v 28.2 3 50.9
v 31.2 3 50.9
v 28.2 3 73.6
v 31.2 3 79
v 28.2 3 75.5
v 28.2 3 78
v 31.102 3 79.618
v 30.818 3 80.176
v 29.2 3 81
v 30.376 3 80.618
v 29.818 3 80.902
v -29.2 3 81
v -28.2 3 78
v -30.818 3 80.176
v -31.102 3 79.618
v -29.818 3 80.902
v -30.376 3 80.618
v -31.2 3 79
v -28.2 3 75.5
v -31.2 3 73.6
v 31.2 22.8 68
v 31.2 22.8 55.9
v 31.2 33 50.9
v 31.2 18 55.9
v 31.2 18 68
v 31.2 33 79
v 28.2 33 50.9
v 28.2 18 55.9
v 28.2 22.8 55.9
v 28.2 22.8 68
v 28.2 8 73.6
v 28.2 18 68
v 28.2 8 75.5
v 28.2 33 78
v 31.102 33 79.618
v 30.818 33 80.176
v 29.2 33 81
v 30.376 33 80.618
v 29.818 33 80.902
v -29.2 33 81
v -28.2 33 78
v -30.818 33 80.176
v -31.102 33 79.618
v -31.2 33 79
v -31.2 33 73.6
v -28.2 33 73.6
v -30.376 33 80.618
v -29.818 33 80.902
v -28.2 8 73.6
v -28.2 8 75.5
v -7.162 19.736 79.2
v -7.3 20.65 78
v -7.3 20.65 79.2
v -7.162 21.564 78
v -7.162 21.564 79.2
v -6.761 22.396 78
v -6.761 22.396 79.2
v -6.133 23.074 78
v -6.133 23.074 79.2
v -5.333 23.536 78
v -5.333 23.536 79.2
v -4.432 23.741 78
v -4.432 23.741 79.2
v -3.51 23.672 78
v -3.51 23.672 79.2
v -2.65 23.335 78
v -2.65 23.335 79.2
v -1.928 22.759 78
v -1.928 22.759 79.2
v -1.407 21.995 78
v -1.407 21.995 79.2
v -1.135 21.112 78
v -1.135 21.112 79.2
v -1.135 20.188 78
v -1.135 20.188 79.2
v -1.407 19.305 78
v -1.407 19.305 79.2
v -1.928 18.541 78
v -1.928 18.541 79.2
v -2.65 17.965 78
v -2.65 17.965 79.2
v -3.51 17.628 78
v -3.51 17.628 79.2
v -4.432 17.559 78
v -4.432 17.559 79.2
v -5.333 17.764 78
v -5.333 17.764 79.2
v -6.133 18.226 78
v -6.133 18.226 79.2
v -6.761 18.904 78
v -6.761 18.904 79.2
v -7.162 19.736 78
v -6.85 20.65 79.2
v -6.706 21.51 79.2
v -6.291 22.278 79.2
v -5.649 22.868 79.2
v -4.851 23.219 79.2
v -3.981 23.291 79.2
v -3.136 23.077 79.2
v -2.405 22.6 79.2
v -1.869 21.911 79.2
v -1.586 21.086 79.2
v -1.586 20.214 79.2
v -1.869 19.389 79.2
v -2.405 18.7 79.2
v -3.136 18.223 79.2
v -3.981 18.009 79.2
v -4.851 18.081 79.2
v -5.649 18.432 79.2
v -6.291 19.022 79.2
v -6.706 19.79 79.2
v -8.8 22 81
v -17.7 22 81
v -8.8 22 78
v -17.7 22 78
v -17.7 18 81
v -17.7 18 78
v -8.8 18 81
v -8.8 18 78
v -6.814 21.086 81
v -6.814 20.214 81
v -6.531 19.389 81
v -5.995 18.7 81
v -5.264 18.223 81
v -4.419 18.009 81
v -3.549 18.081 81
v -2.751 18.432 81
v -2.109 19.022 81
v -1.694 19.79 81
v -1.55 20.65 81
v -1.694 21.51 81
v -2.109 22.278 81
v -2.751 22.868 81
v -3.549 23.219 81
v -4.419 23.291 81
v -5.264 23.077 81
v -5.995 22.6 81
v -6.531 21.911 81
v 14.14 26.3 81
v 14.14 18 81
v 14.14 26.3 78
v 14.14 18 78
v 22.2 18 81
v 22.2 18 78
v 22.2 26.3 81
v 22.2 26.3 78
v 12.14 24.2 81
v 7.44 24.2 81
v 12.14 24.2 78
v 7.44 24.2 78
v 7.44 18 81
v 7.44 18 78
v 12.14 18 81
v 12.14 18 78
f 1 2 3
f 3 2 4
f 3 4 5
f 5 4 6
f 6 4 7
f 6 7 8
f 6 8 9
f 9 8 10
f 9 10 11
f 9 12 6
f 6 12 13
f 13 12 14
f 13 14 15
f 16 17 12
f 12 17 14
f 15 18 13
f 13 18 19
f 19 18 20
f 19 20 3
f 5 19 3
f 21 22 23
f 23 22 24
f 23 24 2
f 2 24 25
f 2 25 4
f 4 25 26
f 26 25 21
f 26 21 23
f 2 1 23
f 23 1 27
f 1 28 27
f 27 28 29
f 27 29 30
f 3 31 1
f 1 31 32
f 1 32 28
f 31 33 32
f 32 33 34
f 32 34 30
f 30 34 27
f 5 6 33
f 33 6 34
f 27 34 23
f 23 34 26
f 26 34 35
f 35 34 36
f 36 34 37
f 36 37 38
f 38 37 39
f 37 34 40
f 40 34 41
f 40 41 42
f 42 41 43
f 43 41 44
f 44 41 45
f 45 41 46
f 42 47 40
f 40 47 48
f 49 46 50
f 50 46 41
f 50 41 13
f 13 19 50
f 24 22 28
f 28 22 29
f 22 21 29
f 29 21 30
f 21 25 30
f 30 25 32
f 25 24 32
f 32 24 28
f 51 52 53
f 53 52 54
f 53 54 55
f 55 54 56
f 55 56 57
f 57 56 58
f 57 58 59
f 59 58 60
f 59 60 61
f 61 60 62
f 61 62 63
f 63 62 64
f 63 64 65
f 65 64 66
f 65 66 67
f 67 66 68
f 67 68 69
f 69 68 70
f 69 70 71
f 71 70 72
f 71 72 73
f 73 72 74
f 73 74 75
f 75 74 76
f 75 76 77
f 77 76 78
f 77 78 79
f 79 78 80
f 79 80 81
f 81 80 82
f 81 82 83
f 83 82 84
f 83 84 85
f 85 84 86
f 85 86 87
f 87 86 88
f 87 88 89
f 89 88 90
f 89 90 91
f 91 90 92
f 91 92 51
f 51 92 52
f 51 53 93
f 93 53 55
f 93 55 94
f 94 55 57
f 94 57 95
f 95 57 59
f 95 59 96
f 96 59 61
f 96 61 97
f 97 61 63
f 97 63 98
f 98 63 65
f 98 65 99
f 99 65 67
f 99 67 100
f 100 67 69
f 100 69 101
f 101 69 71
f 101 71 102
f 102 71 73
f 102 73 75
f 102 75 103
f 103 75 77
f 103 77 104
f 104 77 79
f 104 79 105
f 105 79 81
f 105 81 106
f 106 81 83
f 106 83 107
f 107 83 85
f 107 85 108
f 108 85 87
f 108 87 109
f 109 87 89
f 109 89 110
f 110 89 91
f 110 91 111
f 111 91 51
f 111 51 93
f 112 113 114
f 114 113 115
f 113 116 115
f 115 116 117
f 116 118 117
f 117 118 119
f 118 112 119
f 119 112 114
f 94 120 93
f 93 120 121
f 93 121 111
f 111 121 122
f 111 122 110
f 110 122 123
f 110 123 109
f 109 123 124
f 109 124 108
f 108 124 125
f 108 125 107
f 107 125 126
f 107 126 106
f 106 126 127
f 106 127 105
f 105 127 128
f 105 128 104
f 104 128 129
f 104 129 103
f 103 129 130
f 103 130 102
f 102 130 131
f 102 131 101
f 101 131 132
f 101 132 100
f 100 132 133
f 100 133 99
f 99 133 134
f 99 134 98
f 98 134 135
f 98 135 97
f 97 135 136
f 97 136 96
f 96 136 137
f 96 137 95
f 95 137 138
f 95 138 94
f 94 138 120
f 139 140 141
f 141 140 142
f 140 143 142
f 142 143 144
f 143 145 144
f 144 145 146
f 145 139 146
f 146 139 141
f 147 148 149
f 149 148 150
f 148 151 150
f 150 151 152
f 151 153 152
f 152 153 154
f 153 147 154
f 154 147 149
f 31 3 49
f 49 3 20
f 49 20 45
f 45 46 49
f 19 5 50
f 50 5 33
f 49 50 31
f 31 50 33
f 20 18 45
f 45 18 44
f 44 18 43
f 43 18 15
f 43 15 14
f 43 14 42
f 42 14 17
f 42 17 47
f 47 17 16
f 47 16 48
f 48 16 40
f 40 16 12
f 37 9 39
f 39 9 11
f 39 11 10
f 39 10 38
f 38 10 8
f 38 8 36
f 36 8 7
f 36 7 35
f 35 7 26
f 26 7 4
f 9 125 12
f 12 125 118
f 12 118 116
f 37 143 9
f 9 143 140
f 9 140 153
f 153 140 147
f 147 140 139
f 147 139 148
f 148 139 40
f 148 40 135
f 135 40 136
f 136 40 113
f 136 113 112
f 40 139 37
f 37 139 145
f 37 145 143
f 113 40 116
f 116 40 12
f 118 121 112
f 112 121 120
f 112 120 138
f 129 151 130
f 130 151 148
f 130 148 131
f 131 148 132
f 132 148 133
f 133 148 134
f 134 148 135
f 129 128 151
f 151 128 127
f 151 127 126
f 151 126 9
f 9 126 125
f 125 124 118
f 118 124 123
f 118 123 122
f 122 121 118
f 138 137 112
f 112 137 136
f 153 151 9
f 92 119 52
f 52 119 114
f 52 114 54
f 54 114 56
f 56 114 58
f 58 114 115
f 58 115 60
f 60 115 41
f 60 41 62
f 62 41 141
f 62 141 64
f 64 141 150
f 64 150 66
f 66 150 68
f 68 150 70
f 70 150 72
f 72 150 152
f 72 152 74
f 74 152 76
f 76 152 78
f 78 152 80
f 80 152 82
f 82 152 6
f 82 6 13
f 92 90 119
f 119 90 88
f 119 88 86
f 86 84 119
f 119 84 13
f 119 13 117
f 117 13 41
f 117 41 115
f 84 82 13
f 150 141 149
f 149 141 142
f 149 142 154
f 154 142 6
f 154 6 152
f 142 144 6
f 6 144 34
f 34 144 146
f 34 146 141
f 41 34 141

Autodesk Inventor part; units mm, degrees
ref_plane "YZ Plane" through (0, 0, 0) normal (1, 0, 0) x (0, 1, 0)
ref_plane "XZ Plane" through (0, 0, 0) normal (0, 1, 0) x (-1, 0, 0)
ref_plane "XY Plane" through (0, 0, 0) normal (0, 0, 1) x (1, 0, 0)
sketch "Sketch1" plane through (0, 0, 0) normal (0, 1, 0) x (-1, 0, 0)
  line L0 (-31.2, -81) -> (31.2, -81)
  line L1 (31.2, -81) -> (31.2, 81)
  line L2 (31.2, 81) -> (-31.2, 81)
  line L3 (-31.2, 81) -> (-31.2, -81)
  line L4 (-31.2, -81) -> (31.2, 81) construction
  line L5 (31.2, -81) -> (-31.2, 81) construction
  point P0 (0, 0)
  dimension "d0" = 62.4
  dimension "d1" = 162
extrude "Extrusion1" add sketch "Sketch1" along normal blind 3
sketch "Sketch2" plane through (0, 3, 0) normal (0, 1, 0) x (1, 0, 0)
  line L0 (-31.2, 81) -> (-31.2, -81) projected
  line L1 (-31.2, -81) -> (31.2, -81) projected
  line L2 (31.2, -81) -> (31.2, 81) projected
  line L3 (31.2, 81) -> (-31.2, 81) projected
  line L4 (31.2, 81) -> (-31.2, 81)
  line L5 (-31.2, 81) -> (-31.2, -81)
  line L6 (-31.2, -81) -> (31.2, -81)
  line L7 (31.2, -81) -> (31.2, 81)
  line L8 (31.2, 81) -> (-31.2, -81) construction
  line L9 (-31.2, 81) -> (31.2, -81) construction
  line L10 (28.2, 78) -> (-28.2, 78)
  line L11 (-28.2, 78) -> (-28.2, -78)
  line L12 (-28.2, -78) -> (28.2, -78)
  line L13 (28.2, -78) -> (28.2, 78)
  line L14 (28.2, 78) -> (-28.2, -78) construction
  line L15 (-28.2, 78) -> (28.2, -78) construction
  point P0 (0, 0)
  dimension "d4" = 0
  dimension "d5" = 0
  dimension "d6" = 3
  dimension "d7" = 3
extrude "Extrusion2" add sketch "Sketch2" along normal blind 30
fillet "Fillet1" radius 2 4 edges at (31.2, 16.5, 81) (31.2, 16.5, -81) (-31.2, 16.5, 81) (-31.2, 16.5, -81)
sketch "Sketch9" plane through (0, 3, 0) normal (0, 1, 0) x (1, 0, 0)
  line L0 (28.2, 78) -> (-28.2, 78) projected
  line L1 (-28.2, 78) -> (-28.2, -78) projected
  line L2 (-28.2, -78) -> (28.2, -78) projected
  line L3 (28.2, -78) -> (28.2, 78) projected
  line L4 (-28.2, -75.5) -> (28.2, -75.5)
  line L5 (28.2, -75.5) -> (28.2, -73.6)
  line L6 (28.2, -73.6) -> (-28.2, -73.6)
  line L7 (-28.2, -73.6) -> (-28.2, -75.5)
  line L8 (-28.2, 78) -> (-28.2, -78) projected
  line L9 (-28.2, 32.8) -> (28.2, 32.8)
  line L10 (28.2, 32.8) -> (28.2, 34.7)
  line L11 (28.2, 34.7) -> (-28.2, 34.7)
  line L12 (-28.2, 34.7) -> (-28.2, 32.8)
  line L13 (-28.2, 34.7) -> (-11, 34.7)
  line L14 (-11, 34.7) -> (-11, 32.8)
  line L15 (-11, 32.8) -> (-28.2, 32.8)
  line L16 (-28.2, 32.8) -> (-28.2, 34.7)
  line L17 (28.2, 39.1) -> (-11, 39.1)
  line L18 (-11, 39.1) -> (-11, 37.2)
  line L19 (-11, 37.2) -> (28.2, 37.2)
  line L20 (28.2, 37.2) -> (28.2, 39.1)
  line L21 (-11, 37.2) -> (-9, 37.2)
  line L22 (-9, 37.2) -> (-9, 34.7)
  line L23 (-9, 34.7) -> (-11, 34.7)
  line L24 (-11, 34.7) -> (-11, 37.2)
  point P0 (0, 0)
  point P1 (28.2, 14.2)
  point P2 (-28.2, 34.7)
  point P3 (28.2, 32.8)
  point P4 (-28.2, -73.6)
  point P5 (-11, 34.7)
  point P6 (28.2, 37.2)
  dimension "d79" = 1.9
  dimension "d80" = 2.5
  dimension "d81" = 1.9
  dimension "d82" = 106.4
  dimension "d87" = 17.2
  dimension "d163" = 1.9
  dimension "d164" = 2.5
  dimension "d165" = 17.2
  dimension "d166" = 2
extrude "Extrusion9" add sketch "Sketch9" along normal blind 5 contours L3 L19 L18 L17 | L24 L19 L22 L11 | L11 L3 L9 L14 | L6 L3 L4 L1
sketch "Sketch10" plane through (0, 3, 0) normal (0, 1, 0) x (1, 0, 0)
  line L0 (-28.2, -73.6) -> (28.2, -73.6) projected
  line L1 (28.2, -73.6) -> (28.2, 32.8) projected
  line L2 (28.2, 32.8) -> (-11, 32.8) projected
  line L3 (-9, 34.7) -> (28.2, 34.7) projected
  line L4 (28.2, 34.7) -> (28.2, 37.2) projected
  line L5 (28.2, 78) -> (-28.2, 78) projected
  line L6 (-28.2, 78) -> (-28.2, -73.6) projected
  line L7 (-28.2, 37.1) -> (28.2, 37.1)
  line L8 (-28.2, 70.3) -> (-28.2, 37.1)
  line L9 (-28.2, 37.1) -> (28.2, 37.1)
  line L10 (28.2, 37.1) -> (28.2, 39.1)
  line L11 (28.2, 39.1) -> (-28.2, 39.1)
  line L12 (-28.2, 39.1) -> (-28.2, 37.1)
  line L13 (28.2, 34.7) -> (28.2, 78) projected
  line L14 (-28.2, 39.1) -> (28.2, 39.1)
  line L15 (28.2, 39.1) -> (28.2, 75.6)
  line L16 (28.2, 75.6) -> (-23, 75.6)
  line L17 (-23, 75.6) -> (28.2, 75.6)
  line L18 (28.2, 75.6) -> (28.2, 68)
  line L19 (-23, 73.5) -> (-23, 75.6)
  line L20 (28.2, 39.1) -> (26.2, 39.1)
  line L21 (26.2, 39.1) -> (26.2, 75.6)
  line L22 (26.2, 75.6) -> (28.2, 75.6)
  line L23 (28.2, 75.6) -> (28.2, 39.1)
  line L24 (26.2, 39.1) -> (9.6, 39.1)
  line L25 (9.6, 39.1) -> (9.6, 75.6)
  line L26 (9.6, 75.6) -> (26.2, 75.6)
  line L27 (26.2, 75.6) -> (26.2, 39.1)
  line L28 (9.6, 39.1) -> (7.6, 39.1)
  line L29 (7.6, 39.1) -> (7.6, 75.6)
  line L30 (7.6, 75.6) -> (9.6, 75.6)
  line L31 (9.6, 75.6) -> (9.6, 39.1)
  line L32 (7.6, 39.1) -> (-9, 39.1)
  line L33 (-9, 39.1) -> (-9, 75.6)
  line L34 (-9, 75.6) -> (7.6, 75.6)
  line L35 (7.6, 75.6) -> (7.6, 39.1)
  line L36 (-9, 39.1) -> (-11, 39.1)
  line L37 (-11, 39.1) -> (-11, 75.6)
  line L38 (-11, 75.6) -> (-9, 75.6)
  line L39 (-9, 75.6) -> (-9, 39.1)
  line L40 (-23, 75.6) -> (-21.5, 75.6)
  line L41 (-21.5, 75.6) -> (-21.5, 39.1)
  line L42 (-21.5, 39.1) -> (-23, 39.1)
  line L43 (-23, 39.1) -> (-23, 75.6)
  line L44 (-11, 39.2) -> (-11, 57)
  line L45 (-11, 57) -> (-21.5, 57)
  line L46 (-21.5, 57) -> (-21.5, 39.1)
  line L47 (-11, 39.1) -> (28.2, 39.1) projected
  line L48 (28.2, 39.1) -> (28.2, 78) projected
  line L49 (-11, 32.8) -> (-11, 39.1) projected
  line L50 (28.2, 37.2) -> (-9, 37.2) projected
  line L51 (-9, 37.2) -> (-9, 34.7) projected
  line L52 (28.2, -75.5) -> (-28.2, -75.5) projected
  line L53 (-28.2, -75.5) -> (-28.2, -78) projected
  line L54 (-28.2, -78) -> (28.2, -78) projected
  line L55 (28.2, -78) -> (28.2, -75.5) projected
  line L56 (-11, 39.2) -> (-11, 37.1)
  line L57 (-11, 55) -> (-23, 55)
  line L58 (-11, 39.2) -> (-11, 32.8)
  line L59 (-11, 32.8) -> (-11, 32.8)
  line L60 (-11, 32.8) -> (-11, 39.2)
  line L61 (-23, 55) -> (-28.2, 55)
  point P0 (0, 0)
  point P1 (28.2, 37.1)
  point P2 (-9, 39.1)
  point P3 (-11, 39.1)
  point P4 (-21.5, 39.1)
  point P5 (-21.5, 57)
  point P6 (28.2, 37.2)
  point P7 (-11, 37.1)
  point P8 (28.2, 39.1)
  point P9 (-25.2, 72.6)
  point P10 (-11, 39.2)
  point P11 (-11, 39.1)
  point P12 (-11, 55)
  point P13 (-21.5, 75.6)
  point P14 (-25.2, 52)
  point P15 (-11, 37.1)
  point P16 (28.2, 39.1)
  point P17 (-11, 37.1)
  point P18 (-21.5, 55)
  point P19 (-11, 39.1)
  point P20 (-10.1, 32.8)
  point P21 (28.2, 39.1)
  point P22 (-11, 39.1)
  point P23 (-9, 39.1)
  point P24 (-11, 32.8)
  dimension "d90" = 2
  dimension "d91" = 36.5
  dimension "d93" = 2
  dimension "d94" = 16.6
  dimension "d95" = 2
  dimension "d96" = 16.6
  dimension "d97" = 2
  dimension "d98" = 1.5
  dimension "d167" = 2.4
  dimension "d172" = 18.6
  dimension "d173" = 2
  dimension "d174" = 10.5
extrude "Extrusion10" add sketch "Sketch10" along normal blind 1 contours L6 L5 L13 L16 L19 L43 L61 | L37 L16 L33 L11 | L43 L19 L16 L41 L57 | L41 L45 L37 L57 | L29 L16 L25 L11 | L11 L21 L16 L13
sketch "Sketch11" plane through (-23.2, 5, 81) normal (0, 0, 1) x (1, 0, 0)
  line L0 (-6, 28) -> (52.4, 28) projected
  line L1 (5.5, 13) -> (14.4, 13)
  line L2 (14.4, 13) -> (14.4, 17)
  line L3 (14.4, 17) -> (5.5, 17)
  line L4 (5.5, 17) -> (5.5, 13)
  line L5 (45.4, 13) -> (37.34, 13)
  line L6 (37.34, 13) -> (37.34, 21.3)
  line L7 (37.34, 21.3) -> (45.4, 21.3)
  line L8 (45.4, 21.3) -> (45.4, 13)
  circle A0 centre (19, 15.65) radius 2.65
  line L9 (48.4, 0) -> (48.4, 30) projected
  line L10 (52.4, 28) -> (52.4, -5) projected
  line L11 (-6, -5) -> (-6, 28) projected
  line L12 (-6, -5) -> (52.4, -5) projected
  line L13 (54.4, -5) -> (54.4, 28) projected
  line L14 (-8, 28) -> (-8, -5) projected
  line L15 (30.64, 13) -> (35.34, 13)
  line L16 (35.34, 13) -> (35.34, 19.2)
  line L17 (35.34, 19.2) -> (30.64, 19.2)
  line L18 (30.64, 19.2) -> (30.64, 13)
  point P0 (23.2, -5)
  point P1 (46.4, 0)
  point P2 (0, 0)
  dimension "d110" = 8.9
  dimension "d111" = 4
  dimension "d112" = 8.06
  dimension "d113" = 8.3
  dimension "d114" = 5.3
  dimension "d149" = 9
  dimension "d150" = 13.5
  dimension "d151" = 27
  dimension "d152" = 18
  dimension "d153" = 18
  dimension "d154" = 18
  dimension "d168" = 4.7
  dimension "d169" = 6.2
  dimension "d170" = 2
  dimension "d171" = 18
extrude "Extrusion11" cut sketch "Sketch11" against normal blind 3 contours L4 L3 L2 L1 | L5 L6 L7 L8 | A0 | L18 L17 L16 L15
sketch "Sketch12" plane through (28.2, 3, 78) normal (0, 0, -1) x (-1, 0, 0)
  line L0 (14.06, 23.3) -> (14.06, 15) projected
  line L1 (14.06, 15) -> (6, 15) projected
  line L2 (6, 15) -> (6, 23.3) projected
  line L3 (6, 23.3) -> (14.06, 23.3) projected
  line L4 (37, 19) -> (45.9, 19) projected
  line L5 (45.9, 19) -> (45.9, 15) projected
  line L6 (45.9, 15) -> (37, 15) projected
  line L7 (37, 15) -> (37, 19) projected
  circle A0 centre (32.4, 17.65) radius 2.65 projected
  line L8 (56.4, 0) -> (0, 0) projected
  line L9 (56.4, 0) -> (56.4, 30) projected
  line L10 (0, 30) -> (56.4, 30) projected
  line L11 (0, 0) -> (0, 30) projected
  circle A1 centre (32.4, 17.65) radius 3.1
  point P0 (28.2, -3)
  dimension "d128" = 6.2
extrude "Extrusion12" cut sketch "Sketch12" against normal blind 1.2 contours A1
sketch "Sketch13" plane through (23.2, 5, -81) normal (0, 0, -1) x (-1, 0, 0)
  line L0 (-5, 18) -> (51.4, 18)
  line L1 (51.4, 18) -> (51.4, 8.4)
  line L2 (51.4, 8.4) -> (-5, 8.4)
  line L3 (-5, 8.4) -> (-5, 18)
  line L4 (54.4, -5) -> (54.4, 28) projected
  line L5 (-8, 28) -> (-8, -5) projected
  line L6 (-6, -5) -> (52.4, -5) projected
  point P0 (23.2, -5)
  point P1 (51.4, 0)
  point P2 (-5, 0)
  point P3 (-8, -5)
  point P4 (54.4, 11.5)
  point P5 (51.4, 13.2)
  dimension "d131" = 9.6
  dimension "d146" = 3
  dimension "d147" = 3
  dimension "d156" = 23
extrude "Extrusion13" add sketch "Sketch13" along normal blind 6
sketch "Sketch14" plane through (-28.2, 13.4, -81) normal (-1, 0, 0) x (0, 0, 1)
  line L0 (0, 9.6) -> (0, 0) projected
  line L1 (0, 9.6) -> (-6, 9.6) projected
  line L2 (-6, 0) -> (-6, 9.6) projected
  line L3 (0, 0) -> (-6, 0) projected
  line L4 (0, 9.6) -> (-3.4, 9.6)
  line L5 (-3.4, 9.6) -> (-3.4, 6.6)
  line L6 (-3.4, 6.6) -> (0, 6.6)
  line L7 (0, 6.6) -> (0, 9.6)
  line L8 (0, 0) -> (-3.4, 0)
  line L9 (-3.4, 0) -> (-3.4, 3)
  line L10 (-3.4, 3) -> (0, 3)
  line L11 (0, 3) -> (0, 0)
  point P0 (81, -13.4)
  point P1 (0, 6.6)
  dimension "d137" = 3.4
  dimension "d138" = 3
  dimension "d139" = 3.4
  dimension "d140" = 3
extrude "Extrusion14" cut sketch "Sketch14" against normal up to surface (56.4 mm away) contours L0 L6 L5 L1 | L0 L3 L9 L10
fillet "Fillet5" radius 1 18 edges at (0, 23, -87) (0, 23, -84.4) (0, 13.4, -87) (0, 13.4, -84.4) (-28.2, 16.4, -82.7) (-28.2, 20, -82.7) (28.2, 16.4, -82.7) (28.2, 20, -82.7) (-28.2, 18.2, -87) (-28.2, 21.5, -84.4) (-28.2, 14.9, -84.4) (-28.2, 23, -85.7) (-28.2, 13.4, -85.7) (28.2, 23, -85.7) (28.2, 13.4, -85.7) (28.2, 14.9, -84.4) (28.2, 18.2, -87) (28.2, 21.5, -84.4)
sketch "Sketch15" plane through (31.2, 0, 79) normal (1, 0, 0) x (0, 0, -1)
  line L0 (11, 22.8) -> (23.1, 22.8)
  line L1 (23.1, 22.8) -> (23.1, 18)
  line L2 (23.1, 18) -> (11, 18)
  line L3 (11, 18) -> (11, 22.8)
  line L4 (-2, 33) -> (-2, 0) projected
  line L5 (0, 0) -> (158, 0) projected
  point P0 (79, 0)
  dimension "d157" = 12.1
  dimension "d158" = 4.8
  dimension "d159" = 13
  dimension "d160" = 18
extrude "Extrusion15" cut sketch "Sketch15" against normal blind 3
sketch "Sketch16" plane through (0, 33, 0) normal (0, 1, 0) x (1, 0, 0)
  arc A0 (-29.2, 81) -> (-31.2, 79) centre (-29.2, 79) ccw projected
  line L0 (-31.2, 79) -> (-31.2, -79) projected
  arc A1 (-31.2, -79) -> (-29.2, -81) centre (-29.2, -79) ccw projected
  line L1 (-29.2, -81) -> (29.2, -81) projected
  arc A2 (29.2, -81) -> (31.2, -79) centre (29.2, -79) ccw projected
  line L2 (31.2, -79) -> (31.2, 79) projected
  arc A3 (31.2, 79) -> (29.2, 81) centre (29.2, 79) ccw projected
  line L3 (29.2, 81) -> (-29.2, 81) projected
  line L4 (28.2, 78) -> (28.2, -78) projected
  line L5 (28.2, -78) -> (-28.2, -78) projected
  line L6 (-28.2, -78) -> (-28.2, 78) projected
  line L7 (-28.2, 78) -> (28.2, 78) projected
  line L8 (31.2, -79) -> (31.2, 79) projected
  line L9 (31.2, -50.9) -> (-31.2, -50.9)
  line L10 (-31.2, -50.9) -> (-31.2, 149.1)
  line L11 (-31.2, 149.1) -> (31.2, 149.1)
  line L12 (31.2, 149.1) -> (31.2, -50.9)
  line L13 (31.2, -55.9) -> (28.2, -55.9) projected
  line L14 (-28.2, -73.6) -> (28.2, -73.6) projected
  line L15 (-31.2, -50.9) -> (-28.2, -50.9)
  line L16 (-28.2, -50.9) -> (-28.2, -73.6)
  line L17 (-28.2, -73.6) -> (-31.2, -73.6)
  line L18 (-31.2, -73.6) -> (-31.2, -50.9)
  point P0 (0, 0)
  point P1 (-28.2, -50.9)
  point P2 (28.2, -50.9)
  dimension "d175" = 200
  dimension "d176" = 5
extrude "Extrusion16" cut sketch "Sketch16" against normal through all contours L3 A3 L2 L9 L4 L7 L6 L0 A0 | A0 L10 L11 L12 A3 L3 | L9 L6 L17 L0 | L6 L7 L4 L9
sketch "Sketch17" plane through (0, 0, 0) normal (0, -1, 0) x (1, 0, 0)
  line L0 (-28.2, 50.9) -> (31.2, 50.9) projected
  line L1 (31.2, 79) -> (31.2, 50.9) projected
  arc A0 (31.2, 79) -> (29.2, 81) centre (29.2, 79) ccw projected
  line L2 (-29.2, 81) -> (29.2, 81) projected
  arc A1 (-29.2, 81) -> (-31.2, 79) centre (-29.2, 79) ccw projected
  line L3 (-31.2, 73.6) -> (-31.2, 79) projected
  line L4 (-31.2, 73.6) -> (-28.2, 73.6) projected
  line L5 (-28.2, 73.6) -> (-28.2, 50.9) projected
  point P0 (0, 0)
extrude "Extrusion17" cut sketch "Sketch17" against normal blind 3
properties part number "module_command" material "PC/ABS Plastic"
